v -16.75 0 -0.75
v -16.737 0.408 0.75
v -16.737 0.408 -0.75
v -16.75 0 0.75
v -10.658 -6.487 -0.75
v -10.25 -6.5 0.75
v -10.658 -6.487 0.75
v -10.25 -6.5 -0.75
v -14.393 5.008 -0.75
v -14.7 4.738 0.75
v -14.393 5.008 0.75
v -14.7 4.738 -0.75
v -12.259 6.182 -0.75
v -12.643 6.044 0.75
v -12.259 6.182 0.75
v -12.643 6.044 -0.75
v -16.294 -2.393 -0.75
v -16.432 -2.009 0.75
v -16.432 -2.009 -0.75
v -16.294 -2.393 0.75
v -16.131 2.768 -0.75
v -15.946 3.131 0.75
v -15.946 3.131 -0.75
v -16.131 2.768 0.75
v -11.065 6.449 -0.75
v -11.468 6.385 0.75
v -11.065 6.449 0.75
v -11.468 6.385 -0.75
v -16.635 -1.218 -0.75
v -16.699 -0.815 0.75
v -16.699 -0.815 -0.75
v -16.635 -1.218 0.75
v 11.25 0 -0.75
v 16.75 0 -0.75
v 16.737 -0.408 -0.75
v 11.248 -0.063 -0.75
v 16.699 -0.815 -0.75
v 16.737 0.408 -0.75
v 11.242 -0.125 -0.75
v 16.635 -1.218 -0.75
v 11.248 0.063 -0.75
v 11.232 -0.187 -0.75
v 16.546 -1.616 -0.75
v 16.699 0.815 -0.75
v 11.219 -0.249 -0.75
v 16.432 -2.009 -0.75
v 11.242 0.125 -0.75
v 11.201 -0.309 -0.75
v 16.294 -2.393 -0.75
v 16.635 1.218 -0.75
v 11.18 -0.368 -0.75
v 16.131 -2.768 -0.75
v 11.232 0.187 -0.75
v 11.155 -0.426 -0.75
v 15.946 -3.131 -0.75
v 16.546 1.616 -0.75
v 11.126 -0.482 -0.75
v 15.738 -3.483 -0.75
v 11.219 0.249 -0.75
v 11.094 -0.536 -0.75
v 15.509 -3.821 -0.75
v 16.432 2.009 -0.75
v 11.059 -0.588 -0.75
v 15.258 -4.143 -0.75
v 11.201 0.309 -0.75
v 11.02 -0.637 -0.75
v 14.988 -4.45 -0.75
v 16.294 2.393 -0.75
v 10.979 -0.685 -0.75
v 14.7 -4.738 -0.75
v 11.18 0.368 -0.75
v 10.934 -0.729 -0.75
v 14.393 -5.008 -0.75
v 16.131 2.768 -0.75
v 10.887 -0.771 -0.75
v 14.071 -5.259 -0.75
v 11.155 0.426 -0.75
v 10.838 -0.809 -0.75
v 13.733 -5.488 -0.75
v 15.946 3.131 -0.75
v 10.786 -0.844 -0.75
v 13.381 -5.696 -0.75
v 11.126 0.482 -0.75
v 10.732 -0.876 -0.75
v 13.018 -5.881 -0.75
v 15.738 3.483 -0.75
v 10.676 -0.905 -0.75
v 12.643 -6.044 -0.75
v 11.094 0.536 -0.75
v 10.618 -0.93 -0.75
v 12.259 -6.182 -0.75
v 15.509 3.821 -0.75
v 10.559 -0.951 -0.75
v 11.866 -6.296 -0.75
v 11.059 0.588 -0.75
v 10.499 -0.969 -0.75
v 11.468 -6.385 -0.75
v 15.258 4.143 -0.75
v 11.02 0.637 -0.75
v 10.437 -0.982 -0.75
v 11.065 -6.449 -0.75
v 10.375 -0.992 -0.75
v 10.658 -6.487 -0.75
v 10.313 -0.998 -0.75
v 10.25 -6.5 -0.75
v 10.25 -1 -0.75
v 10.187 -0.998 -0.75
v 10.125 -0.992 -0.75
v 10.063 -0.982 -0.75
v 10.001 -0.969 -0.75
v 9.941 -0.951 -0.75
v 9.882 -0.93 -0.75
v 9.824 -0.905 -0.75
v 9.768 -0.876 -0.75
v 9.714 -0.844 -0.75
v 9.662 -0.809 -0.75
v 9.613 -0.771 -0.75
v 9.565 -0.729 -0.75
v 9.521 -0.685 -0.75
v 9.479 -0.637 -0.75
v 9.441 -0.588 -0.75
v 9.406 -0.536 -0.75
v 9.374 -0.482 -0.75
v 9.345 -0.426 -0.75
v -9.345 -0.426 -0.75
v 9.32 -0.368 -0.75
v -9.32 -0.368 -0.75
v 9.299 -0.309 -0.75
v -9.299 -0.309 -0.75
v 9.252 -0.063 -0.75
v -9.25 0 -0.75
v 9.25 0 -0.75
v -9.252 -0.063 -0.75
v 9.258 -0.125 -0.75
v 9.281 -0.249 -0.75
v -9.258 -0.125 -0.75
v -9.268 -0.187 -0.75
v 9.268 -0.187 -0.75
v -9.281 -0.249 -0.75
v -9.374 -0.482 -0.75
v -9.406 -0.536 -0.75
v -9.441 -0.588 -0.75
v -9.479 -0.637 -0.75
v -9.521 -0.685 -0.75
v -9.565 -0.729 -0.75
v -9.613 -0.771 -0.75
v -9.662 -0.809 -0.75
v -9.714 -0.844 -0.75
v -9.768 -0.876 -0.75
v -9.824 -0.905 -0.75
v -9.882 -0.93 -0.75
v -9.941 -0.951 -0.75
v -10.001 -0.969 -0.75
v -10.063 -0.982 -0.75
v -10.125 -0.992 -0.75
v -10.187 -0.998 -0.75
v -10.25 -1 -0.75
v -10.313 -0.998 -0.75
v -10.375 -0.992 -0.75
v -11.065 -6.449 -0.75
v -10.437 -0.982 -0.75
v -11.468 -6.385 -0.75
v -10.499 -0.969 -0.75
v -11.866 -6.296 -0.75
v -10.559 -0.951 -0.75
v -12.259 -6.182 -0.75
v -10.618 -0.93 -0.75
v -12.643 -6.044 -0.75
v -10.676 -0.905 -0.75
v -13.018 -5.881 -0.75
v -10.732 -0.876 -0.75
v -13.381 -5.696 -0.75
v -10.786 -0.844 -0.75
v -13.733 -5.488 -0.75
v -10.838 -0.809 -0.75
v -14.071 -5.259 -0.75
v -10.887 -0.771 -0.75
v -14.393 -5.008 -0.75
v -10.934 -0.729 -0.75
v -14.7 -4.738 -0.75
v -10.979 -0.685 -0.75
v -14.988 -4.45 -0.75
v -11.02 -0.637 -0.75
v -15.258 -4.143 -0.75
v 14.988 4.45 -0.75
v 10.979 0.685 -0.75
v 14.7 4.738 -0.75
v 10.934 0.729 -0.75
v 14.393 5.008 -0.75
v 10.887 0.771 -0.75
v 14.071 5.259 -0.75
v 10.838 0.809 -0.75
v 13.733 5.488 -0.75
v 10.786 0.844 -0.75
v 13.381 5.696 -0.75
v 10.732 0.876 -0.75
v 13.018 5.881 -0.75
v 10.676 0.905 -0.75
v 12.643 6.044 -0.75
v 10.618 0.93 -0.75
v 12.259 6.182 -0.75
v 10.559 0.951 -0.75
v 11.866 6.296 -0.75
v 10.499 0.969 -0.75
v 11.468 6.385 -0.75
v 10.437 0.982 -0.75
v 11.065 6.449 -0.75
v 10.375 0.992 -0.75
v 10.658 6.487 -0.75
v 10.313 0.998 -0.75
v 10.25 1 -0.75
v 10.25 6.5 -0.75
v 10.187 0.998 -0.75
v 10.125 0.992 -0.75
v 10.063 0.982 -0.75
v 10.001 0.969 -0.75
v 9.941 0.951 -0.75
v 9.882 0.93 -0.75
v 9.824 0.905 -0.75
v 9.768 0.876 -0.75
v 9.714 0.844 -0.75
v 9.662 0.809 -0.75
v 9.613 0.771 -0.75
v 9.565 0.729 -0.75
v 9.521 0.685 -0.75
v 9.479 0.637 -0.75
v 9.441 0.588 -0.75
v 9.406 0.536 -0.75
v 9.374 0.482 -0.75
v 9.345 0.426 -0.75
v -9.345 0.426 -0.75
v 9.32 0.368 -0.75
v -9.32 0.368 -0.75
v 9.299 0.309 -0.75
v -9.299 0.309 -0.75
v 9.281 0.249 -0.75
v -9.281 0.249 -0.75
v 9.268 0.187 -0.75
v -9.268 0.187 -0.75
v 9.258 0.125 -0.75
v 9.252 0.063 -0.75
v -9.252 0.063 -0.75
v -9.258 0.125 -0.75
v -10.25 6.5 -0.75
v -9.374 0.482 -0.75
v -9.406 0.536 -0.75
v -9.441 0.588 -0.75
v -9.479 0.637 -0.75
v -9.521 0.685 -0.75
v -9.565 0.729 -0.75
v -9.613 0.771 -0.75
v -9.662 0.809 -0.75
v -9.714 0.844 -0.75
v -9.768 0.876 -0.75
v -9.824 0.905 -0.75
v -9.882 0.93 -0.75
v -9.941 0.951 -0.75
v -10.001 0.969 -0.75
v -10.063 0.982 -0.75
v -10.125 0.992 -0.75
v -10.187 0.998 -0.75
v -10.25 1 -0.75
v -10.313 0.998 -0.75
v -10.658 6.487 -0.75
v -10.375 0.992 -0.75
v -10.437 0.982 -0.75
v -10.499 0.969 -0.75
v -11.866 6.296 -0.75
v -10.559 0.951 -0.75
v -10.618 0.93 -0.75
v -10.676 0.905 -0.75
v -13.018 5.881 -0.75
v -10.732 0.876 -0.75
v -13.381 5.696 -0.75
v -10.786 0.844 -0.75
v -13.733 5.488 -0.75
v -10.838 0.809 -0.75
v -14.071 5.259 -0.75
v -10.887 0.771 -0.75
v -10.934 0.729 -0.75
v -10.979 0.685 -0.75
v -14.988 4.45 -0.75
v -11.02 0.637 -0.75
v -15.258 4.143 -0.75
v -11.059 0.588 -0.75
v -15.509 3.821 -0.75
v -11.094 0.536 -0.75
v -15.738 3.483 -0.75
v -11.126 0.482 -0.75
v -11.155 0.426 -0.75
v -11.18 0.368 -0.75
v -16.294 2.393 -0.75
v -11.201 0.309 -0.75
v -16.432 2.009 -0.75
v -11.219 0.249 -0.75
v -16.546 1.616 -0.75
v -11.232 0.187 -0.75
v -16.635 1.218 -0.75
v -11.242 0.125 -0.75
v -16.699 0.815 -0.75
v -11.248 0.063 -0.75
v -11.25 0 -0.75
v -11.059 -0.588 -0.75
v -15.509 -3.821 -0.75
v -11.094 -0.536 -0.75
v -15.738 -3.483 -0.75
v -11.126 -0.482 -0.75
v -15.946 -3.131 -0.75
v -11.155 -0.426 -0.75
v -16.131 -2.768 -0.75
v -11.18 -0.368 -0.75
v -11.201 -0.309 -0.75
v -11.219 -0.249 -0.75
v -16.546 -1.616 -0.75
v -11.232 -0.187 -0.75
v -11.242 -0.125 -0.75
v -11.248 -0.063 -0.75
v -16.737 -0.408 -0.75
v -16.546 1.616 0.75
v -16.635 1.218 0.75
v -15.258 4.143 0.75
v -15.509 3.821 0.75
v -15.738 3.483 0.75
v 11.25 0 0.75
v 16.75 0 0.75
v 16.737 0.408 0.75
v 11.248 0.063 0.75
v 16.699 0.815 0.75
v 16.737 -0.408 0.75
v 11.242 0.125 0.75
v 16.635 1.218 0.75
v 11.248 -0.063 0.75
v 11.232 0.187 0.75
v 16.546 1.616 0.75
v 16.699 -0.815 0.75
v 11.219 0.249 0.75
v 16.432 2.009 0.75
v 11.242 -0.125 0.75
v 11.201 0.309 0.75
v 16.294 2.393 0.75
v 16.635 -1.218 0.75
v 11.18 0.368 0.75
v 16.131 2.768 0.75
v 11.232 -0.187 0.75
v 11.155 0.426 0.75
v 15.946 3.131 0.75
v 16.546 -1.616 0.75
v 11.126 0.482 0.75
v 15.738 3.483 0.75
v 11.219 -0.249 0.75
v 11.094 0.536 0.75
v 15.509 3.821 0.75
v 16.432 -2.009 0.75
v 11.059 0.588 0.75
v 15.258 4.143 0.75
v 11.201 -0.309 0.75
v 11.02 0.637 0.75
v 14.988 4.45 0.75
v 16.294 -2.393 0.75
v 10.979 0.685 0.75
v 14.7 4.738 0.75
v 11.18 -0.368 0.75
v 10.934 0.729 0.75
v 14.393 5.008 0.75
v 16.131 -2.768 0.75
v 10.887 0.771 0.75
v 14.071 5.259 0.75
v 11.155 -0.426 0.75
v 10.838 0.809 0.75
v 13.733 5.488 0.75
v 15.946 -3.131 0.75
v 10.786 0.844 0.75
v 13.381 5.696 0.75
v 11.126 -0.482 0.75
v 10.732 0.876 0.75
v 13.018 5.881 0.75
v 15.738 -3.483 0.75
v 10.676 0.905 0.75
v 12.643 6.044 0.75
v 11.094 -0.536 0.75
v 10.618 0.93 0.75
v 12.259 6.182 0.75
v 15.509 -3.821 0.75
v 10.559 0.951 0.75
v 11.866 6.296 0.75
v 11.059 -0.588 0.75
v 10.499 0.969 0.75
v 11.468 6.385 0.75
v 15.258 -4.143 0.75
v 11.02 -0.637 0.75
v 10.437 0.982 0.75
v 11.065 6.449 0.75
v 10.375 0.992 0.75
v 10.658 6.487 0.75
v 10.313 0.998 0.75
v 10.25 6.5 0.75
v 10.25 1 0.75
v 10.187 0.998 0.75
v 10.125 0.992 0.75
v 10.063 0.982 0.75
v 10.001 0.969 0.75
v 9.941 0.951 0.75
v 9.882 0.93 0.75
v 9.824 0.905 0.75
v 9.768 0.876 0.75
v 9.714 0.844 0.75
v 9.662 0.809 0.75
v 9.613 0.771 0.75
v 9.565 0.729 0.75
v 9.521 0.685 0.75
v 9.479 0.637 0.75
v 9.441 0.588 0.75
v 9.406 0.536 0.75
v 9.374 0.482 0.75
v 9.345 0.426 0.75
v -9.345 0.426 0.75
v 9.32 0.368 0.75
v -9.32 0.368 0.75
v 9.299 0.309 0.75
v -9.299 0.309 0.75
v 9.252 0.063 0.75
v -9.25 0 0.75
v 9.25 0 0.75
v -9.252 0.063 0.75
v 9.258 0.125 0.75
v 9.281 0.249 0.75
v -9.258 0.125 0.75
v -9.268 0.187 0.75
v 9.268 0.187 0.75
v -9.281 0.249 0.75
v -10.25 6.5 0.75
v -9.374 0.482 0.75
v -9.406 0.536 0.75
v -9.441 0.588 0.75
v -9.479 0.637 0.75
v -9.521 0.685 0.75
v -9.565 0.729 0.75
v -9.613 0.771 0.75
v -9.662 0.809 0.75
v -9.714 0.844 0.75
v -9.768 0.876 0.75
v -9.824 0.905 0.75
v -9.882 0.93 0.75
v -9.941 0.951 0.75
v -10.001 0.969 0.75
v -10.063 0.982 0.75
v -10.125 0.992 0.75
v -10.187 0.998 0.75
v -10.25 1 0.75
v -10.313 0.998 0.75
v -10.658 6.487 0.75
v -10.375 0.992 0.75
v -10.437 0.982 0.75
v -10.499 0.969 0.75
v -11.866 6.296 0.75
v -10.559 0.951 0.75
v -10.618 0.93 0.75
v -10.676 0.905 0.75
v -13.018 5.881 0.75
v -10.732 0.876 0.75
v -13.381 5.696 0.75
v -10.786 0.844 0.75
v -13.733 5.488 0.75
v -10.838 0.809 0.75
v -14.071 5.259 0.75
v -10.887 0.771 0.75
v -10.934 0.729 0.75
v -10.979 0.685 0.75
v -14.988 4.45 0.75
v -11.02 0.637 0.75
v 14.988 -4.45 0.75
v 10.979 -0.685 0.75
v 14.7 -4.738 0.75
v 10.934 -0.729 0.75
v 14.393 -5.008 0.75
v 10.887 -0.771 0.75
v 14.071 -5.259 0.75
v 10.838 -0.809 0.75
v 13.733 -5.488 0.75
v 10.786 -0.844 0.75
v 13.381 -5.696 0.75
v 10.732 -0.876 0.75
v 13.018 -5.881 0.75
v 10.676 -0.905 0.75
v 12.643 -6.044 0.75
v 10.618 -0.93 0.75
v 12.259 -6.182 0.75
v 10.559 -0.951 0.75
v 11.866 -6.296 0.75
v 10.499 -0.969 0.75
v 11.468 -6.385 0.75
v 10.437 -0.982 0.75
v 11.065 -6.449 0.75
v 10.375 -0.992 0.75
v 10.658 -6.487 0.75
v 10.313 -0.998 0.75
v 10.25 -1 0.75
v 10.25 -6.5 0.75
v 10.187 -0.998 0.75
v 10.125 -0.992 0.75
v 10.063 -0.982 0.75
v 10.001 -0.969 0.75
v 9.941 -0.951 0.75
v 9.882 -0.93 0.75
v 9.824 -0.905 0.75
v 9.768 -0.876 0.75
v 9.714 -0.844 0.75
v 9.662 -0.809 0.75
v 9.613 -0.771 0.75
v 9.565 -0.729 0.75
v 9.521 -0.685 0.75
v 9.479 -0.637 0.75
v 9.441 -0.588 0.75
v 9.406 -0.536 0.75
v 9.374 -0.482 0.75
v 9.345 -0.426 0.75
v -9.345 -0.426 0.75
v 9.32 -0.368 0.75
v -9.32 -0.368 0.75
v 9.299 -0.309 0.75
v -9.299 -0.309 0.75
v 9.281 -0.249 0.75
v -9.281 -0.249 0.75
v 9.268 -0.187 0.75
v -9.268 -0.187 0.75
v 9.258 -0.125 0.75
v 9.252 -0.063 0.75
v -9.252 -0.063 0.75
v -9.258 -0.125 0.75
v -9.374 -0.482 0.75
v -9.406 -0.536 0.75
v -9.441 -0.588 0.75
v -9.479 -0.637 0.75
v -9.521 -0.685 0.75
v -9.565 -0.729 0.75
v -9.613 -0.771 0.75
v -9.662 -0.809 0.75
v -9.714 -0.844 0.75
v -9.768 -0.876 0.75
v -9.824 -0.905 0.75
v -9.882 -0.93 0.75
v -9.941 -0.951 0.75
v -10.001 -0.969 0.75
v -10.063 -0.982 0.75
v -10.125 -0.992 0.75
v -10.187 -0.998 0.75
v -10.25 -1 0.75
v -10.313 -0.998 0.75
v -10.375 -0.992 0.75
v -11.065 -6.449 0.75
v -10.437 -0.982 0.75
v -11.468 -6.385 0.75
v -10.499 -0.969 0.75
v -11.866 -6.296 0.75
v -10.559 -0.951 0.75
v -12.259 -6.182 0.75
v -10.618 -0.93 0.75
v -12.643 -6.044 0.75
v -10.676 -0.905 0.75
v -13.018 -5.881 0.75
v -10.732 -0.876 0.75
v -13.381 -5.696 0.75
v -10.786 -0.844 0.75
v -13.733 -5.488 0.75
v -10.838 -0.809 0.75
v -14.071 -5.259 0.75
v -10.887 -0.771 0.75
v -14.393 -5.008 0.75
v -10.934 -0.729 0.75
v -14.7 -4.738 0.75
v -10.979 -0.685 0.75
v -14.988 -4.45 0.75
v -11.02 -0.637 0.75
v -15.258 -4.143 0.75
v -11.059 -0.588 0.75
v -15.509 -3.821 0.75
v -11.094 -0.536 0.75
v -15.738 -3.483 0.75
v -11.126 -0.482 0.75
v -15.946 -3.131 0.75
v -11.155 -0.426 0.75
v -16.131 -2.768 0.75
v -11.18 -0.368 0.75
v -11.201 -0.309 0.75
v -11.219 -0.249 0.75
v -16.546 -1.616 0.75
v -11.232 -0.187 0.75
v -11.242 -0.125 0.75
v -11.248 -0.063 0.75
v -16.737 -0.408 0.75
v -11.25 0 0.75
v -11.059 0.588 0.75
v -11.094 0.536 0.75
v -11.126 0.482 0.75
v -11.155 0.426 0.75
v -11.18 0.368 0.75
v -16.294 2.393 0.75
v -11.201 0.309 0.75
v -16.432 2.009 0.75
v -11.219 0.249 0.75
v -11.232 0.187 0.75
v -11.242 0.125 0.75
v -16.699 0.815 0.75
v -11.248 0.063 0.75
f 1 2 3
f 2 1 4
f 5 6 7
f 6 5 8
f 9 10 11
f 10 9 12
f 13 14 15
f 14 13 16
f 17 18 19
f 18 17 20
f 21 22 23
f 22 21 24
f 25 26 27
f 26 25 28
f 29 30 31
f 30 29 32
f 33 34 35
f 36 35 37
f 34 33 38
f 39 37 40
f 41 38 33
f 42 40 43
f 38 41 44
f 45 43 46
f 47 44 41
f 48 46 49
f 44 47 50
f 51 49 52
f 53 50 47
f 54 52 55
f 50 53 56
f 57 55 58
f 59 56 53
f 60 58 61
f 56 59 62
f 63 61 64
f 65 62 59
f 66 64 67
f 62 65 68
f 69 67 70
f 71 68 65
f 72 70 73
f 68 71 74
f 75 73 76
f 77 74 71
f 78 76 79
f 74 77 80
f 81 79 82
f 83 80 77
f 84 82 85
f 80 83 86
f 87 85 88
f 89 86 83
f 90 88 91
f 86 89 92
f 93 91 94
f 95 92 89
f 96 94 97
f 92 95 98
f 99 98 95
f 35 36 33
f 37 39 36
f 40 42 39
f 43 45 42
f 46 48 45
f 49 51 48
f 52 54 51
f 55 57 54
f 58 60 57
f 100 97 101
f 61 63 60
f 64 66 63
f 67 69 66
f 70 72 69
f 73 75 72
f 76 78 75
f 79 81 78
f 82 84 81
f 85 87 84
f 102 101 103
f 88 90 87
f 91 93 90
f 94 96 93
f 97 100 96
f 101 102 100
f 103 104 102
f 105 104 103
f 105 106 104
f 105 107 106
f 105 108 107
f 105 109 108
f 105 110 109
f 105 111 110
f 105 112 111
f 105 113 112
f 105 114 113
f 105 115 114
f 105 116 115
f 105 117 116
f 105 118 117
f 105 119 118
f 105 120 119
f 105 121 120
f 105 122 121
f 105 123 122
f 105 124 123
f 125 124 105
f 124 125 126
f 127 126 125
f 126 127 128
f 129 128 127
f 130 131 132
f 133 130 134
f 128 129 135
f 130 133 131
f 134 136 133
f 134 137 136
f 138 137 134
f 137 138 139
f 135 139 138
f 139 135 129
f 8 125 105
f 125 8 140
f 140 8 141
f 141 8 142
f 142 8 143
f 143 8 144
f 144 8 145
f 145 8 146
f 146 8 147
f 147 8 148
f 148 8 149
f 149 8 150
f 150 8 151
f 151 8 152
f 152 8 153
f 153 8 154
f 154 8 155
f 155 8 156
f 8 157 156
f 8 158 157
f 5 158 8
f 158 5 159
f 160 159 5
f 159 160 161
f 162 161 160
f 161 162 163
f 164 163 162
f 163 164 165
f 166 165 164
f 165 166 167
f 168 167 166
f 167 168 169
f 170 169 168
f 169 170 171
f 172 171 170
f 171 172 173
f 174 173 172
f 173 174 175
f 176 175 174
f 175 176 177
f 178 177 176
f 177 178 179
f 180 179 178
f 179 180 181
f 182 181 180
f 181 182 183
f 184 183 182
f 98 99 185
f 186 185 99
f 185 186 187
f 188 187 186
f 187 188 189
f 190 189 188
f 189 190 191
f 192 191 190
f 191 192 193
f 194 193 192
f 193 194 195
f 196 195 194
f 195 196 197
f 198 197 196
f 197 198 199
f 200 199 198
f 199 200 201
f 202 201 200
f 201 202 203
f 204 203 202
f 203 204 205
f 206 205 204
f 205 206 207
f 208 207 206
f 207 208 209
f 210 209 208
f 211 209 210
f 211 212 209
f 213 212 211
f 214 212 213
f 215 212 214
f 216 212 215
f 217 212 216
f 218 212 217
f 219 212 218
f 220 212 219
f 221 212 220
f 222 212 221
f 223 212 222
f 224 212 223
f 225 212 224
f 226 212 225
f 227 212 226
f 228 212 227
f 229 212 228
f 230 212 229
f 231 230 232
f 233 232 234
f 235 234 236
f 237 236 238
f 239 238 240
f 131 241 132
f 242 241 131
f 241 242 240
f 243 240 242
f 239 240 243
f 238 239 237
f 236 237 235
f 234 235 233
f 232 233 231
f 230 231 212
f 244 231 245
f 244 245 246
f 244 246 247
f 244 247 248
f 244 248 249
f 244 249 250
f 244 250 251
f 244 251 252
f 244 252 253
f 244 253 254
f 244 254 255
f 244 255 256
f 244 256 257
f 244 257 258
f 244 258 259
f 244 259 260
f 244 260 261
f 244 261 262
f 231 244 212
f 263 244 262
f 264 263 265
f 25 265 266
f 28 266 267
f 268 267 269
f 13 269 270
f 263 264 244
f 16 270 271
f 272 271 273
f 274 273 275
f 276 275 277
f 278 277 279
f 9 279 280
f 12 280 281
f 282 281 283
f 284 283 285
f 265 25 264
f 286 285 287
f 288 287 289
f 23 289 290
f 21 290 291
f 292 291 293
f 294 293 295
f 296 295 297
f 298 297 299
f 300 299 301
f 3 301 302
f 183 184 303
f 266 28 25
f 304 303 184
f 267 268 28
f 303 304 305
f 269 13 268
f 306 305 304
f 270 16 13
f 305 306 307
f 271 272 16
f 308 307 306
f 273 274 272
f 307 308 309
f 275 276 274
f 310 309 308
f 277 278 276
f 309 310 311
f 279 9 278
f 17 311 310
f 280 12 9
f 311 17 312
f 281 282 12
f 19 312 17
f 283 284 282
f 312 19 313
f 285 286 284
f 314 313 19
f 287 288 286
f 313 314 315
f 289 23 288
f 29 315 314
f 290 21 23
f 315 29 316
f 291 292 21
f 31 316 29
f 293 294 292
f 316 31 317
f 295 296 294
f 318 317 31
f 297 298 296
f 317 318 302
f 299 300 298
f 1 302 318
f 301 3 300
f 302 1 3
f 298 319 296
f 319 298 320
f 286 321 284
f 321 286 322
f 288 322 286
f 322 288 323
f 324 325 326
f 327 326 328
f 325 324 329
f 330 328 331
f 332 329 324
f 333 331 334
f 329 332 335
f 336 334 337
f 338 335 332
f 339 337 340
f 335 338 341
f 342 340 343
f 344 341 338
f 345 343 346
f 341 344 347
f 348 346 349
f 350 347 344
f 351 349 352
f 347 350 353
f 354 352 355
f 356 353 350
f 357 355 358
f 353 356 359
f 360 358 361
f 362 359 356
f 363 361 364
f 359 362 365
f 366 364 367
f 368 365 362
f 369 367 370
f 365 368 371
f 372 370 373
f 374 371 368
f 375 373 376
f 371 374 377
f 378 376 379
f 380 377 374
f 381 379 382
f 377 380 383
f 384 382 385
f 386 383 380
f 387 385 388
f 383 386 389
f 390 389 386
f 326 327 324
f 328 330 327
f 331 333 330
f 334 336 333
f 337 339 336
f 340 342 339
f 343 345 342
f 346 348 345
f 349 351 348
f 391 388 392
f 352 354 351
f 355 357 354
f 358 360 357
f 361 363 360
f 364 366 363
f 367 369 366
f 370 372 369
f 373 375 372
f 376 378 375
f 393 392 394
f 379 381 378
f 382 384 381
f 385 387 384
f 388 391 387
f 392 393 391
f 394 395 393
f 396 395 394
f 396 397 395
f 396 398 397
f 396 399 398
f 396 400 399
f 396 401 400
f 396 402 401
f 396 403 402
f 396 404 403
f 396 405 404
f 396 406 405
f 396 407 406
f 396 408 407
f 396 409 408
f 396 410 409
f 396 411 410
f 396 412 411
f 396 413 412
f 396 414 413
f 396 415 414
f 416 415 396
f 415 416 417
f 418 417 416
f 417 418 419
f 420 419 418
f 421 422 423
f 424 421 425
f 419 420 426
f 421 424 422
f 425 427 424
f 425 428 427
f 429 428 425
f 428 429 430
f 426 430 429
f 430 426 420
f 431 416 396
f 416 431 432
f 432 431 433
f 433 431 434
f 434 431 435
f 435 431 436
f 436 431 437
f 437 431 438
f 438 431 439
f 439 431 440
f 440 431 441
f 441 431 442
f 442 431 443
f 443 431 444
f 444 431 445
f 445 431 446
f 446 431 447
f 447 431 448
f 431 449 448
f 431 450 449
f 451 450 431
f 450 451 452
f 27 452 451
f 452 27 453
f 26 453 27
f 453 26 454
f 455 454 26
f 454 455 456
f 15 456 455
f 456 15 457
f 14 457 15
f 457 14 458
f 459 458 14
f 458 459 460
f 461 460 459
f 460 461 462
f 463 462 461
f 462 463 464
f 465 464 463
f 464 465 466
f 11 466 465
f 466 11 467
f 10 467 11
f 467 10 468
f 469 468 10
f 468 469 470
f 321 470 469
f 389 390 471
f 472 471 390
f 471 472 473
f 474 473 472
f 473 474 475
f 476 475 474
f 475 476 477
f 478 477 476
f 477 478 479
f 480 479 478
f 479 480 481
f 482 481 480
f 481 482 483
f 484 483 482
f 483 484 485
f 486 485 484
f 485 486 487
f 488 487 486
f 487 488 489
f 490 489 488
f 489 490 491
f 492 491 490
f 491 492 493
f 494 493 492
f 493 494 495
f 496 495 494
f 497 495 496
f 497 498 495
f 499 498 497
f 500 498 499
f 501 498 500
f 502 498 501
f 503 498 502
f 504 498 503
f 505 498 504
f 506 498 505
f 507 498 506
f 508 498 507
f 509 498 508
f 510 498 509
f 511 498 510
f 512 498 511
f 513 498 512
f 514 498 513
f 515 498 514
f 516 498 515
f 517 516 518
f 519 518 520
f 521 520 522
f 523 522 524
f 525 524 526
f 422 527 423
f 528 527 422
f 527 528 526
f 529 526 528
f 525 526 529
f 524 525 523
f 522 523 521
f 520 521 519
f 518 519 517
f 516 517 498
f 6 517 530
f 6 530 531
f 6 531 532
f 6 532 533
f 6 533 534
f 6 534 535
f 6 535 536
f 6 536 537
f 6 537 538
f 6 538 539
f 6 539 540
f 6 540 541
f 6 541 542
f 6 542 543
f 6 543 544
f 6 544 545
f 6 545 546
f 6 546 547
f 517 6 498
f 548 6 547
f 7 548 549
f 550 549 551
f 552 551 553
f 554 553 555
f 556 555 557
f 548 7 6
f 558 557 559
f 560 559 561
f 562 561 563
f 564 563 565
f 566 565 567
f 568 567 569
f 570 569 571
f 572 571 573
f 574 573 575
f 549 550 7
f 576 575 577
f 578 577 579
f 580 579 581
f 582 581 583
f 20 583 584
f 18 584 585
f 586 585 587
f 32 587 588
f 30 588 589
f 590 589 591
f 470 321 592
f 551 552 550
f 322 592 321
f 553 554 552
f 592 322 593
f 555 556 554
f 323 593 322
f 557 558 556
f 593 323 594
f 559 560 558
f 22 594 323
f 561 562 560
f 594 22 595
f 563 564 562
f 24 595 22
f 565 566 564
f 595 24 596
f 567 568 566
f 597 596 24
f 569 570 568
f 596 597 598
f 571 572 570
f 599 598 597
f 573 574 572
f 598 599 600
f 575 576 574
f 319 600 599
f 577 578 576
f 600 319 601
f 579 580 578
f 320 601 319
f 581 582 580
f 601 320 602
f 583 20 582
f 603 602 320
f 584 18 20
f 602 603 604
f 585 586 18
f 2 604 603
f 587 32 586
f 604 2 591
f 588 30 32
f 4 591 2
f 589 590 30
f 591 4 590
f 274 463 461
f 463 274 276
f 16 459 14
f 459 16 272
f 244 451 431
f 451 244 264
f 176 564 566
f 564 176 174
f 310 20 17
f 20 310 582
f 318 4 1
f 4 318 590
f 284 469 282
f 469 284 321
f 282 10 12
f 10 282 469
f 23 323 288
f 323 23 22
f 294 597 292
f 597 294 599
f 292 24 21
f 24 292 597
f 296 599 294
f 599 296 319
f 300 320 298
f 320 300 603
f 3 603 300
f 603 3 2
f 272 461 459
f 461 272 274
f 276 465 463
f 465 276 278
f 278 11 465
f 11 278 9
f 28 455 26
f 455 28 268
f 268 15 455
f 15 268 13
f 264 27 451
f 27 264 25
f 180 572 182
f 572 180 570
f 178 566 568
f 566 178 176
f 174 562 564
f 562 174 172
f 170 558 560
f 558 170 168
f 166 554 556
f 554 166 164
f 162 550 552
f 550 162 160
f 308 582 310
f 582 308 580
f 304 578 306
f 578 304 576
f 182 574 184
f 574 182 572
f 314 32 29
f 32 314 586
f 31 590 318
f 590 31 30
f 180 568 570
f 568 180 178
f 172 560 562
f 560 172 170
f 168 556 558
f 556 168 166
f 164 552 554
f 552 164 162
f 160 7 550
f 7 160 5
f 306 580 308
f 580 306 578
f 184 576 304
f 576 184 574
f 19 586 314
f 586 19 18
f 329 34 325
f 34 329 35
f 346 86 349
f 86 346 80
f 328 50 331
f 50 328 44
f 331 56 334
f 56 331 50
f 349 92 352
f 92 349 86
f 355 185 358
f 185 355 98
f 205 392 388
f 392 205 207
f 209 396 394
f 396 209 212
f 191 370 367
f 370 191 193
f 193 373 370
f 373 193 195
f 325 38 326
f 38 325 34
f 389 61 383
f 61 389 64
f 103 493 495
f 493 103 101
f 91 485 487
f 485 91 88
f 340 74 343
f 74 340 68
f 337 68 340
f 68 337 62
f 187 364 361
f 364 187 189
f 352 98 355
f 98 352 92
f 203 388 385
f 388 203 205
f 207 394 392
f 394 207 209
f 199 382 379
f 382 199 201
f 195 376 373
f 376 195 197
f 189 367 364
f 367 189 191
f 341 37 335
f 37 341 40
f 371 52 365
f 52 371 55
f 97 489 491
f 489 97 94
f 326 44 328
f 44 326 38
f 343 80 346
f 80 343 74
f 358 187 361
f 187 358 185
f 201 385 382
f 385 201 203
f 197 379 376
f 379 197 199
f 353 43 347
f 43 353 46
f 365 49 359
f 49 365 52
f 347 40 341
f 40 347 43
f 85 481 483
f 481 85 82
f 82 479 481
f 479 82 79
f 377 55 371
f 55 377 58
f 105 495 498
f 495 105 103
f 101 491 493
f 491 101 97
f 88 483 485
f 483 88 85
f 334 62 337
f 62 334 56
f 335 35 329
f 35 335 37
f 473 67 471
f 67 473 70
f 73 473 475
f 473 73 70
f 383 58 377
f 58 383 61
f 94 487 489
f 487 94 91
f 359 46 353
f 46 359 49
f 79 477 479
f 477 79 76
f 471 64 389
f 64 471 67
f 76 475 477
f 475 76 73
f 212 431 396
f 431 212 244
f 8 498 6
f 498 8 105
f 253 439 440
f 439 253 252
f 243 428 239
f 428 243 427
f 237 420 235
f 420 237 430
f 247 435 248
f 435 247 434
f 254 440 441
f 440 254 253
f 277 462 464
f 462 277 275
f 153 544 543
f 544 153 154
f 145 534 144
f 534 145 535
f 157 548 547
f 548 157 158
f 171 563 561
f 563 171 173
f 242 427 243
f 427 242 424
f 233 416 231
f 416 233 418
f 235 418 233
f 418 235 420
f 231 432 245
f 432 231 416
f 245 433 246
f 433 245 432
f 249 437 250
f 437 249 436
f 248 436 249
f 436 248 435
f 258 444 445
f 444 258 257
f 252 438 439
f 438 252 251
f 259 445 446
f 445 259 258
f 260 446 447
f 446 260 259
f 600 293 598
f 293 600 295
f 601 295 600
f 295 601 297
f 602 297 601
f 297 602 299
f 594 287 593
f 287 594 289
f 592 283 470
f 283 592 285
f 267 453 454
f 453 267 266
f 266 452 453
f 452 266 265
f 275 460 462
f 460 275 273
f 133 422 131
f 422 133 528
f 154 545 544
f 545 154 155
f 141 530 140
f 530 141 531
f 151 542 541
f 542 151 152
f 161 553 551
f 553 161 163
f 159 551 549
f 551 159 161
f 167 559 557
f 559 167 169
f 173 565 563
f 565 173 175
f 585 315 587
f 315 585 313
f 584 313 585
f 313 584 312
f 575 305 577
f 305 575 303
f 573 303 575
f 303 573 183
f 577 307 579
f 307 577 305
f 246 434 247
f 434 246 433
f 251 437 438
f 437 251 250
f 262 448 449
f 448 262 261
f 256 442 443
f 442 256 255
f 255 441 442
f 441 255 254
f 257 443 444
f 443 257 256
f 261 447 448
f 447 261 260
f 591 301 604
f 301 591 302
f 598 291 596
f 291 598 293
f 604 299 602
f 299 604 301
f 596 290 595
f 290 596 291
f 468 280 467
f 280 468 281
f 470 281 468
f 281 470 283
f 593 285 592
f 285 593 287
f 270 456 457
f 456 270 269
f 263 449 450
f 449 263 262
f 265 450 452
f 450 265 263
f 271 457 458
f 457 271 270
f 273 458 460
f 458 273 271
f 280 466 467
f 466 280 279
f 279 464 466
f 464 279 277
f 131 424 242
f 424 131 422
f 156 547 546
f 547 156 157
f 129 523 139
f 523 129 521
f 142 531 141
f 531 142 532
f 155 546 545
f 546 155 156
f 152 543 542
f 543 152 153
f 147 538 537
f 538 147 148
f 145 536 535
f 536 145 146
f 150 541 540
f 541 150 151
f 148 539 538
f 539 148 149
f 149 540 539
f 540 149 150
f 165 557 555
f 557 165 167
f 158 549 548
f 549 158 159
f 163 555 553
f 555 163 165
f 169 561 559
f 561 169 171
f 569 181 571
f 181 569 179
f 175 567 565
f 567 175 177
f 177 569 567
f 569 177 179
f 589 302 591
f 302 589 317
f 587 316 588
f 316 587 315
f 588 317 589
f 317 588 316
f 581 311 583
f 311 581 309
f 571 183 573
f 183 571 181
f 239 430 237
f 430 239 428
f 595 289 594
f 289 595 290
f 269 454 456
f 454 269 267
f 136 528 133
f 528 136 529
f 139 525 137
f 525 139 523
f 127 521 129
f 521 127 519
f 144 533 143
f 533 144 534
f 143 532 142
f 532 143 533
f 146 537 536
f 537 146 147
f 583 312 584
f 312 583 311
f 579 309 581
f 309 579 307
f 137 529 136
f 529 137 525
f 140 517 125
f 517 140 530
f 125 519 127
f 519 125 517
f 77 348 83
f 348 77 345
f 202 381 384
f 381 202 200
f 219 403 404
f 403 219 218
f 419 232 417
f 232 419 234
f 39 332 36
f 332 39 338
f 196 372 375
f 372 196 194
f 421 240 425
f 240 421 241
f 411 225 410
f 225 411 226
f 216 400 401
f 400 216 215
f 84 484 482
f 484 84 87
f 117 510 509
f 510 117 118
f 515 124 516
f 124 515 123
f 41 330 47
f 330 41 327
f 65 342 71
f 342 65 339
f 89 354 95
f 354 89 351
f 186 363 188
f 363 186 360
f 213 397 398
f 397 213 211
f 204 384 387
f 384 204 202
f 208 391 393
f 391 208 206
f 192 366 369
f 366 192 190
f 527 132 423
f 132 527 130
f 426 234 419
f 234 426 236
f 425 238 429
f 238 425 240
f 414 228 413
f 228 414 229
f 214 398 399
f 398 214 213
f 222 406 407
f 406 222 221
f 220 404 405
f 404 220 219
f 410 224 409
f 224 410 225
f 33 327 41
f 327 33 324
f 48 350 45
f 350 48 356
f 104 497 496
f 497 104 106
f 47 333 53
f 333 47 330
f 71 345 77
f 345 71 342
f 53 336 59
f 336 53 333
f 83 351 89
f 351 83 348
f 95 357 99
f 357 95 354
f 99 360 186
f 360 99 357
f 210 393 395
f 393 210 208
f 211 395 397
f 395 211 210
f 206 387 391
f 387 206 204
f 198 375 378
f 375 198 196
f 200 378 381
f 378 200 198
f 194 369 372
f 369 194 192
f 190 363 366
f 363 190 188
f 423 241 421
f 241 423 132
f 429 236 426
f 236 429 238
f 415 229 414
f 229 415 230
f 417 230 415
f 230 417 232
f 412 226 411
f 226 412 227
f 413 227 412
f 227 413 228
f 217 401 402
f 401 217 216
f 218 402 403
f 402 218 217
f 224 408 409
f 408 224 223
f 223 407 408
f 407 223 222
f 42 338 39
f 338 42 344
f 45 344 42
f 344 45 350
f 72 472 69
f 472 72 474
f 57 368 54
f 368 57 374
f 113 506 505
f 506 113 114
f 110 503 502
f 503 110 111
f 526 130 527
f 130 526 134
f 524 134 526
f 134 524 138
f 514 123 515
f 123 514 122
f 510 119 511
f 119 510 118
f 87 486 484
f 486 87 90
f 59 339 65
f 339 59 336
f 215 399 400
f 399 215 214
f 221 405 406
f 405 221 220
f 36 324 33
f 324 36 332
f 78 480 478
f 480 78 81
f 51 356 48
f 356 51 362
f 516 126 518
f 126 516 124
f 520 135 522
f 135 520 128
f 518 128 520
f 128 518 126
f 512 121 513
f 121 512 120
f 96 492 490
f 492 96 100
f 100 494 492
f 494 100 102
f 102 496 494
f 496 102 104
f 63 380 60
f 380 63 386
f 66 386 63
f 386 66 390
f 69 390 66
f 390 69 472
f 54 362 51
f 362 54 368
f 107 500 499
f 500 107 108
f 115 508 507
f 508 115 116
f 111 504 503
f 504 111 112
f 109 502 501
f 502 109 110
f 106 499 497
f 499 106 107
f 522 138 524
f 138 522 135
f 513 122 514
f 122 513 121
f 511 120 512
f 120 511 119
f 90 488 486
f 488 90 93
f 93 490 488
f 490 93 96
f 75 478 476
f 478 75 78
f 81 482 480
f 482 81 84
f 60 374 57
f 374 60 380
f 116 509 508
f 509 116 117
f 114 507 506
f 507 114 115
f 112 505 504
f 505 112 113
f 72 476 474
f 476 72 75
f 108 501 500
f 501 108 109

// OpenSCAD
//
//  Copytight (C) 2015 Javier Cano - All Rights Reserved   
//   
//  This program is free software: you can redistribute it and/or modify
//  it under the terms of the GNU General Public License as published by
//  the Free Software Foundation, either version 3 of the License, or
//  (at your option) any later version.
//
//  This program is distributed in the hope that it will be useful,
//  but WITHOUT ANY WARRANTY; without even the implied warranty of
//  MERCHANTABILITY or FITNESS FOR A PARTICULAR PURPOSE.  See the
//  GNU General Public License for more details.
//
//  You should have received a copy of the GNU General Public License
//  along with this program.  If not, see <http://www.gnu.org/licenses/>.
//

difference() {
    union() {
        translate([-20.5/2,0,0])
        cylinder(d=13,h=1.5,center=true,$fn=100);
        translate([20.5/2,0,0])
        cylinder(d=13,h=1.5,center=true,$fn=100);
        cube([20.5,13,1.5],center=true);
    }
    
    translate([-20.5/2,0,0])
    cylinder(d=2,h=2,center=true,$fn=100);
    translate([20.5/2,0,0])
    cylinder(d=2,h=2,center=true,$fn=100);
}
